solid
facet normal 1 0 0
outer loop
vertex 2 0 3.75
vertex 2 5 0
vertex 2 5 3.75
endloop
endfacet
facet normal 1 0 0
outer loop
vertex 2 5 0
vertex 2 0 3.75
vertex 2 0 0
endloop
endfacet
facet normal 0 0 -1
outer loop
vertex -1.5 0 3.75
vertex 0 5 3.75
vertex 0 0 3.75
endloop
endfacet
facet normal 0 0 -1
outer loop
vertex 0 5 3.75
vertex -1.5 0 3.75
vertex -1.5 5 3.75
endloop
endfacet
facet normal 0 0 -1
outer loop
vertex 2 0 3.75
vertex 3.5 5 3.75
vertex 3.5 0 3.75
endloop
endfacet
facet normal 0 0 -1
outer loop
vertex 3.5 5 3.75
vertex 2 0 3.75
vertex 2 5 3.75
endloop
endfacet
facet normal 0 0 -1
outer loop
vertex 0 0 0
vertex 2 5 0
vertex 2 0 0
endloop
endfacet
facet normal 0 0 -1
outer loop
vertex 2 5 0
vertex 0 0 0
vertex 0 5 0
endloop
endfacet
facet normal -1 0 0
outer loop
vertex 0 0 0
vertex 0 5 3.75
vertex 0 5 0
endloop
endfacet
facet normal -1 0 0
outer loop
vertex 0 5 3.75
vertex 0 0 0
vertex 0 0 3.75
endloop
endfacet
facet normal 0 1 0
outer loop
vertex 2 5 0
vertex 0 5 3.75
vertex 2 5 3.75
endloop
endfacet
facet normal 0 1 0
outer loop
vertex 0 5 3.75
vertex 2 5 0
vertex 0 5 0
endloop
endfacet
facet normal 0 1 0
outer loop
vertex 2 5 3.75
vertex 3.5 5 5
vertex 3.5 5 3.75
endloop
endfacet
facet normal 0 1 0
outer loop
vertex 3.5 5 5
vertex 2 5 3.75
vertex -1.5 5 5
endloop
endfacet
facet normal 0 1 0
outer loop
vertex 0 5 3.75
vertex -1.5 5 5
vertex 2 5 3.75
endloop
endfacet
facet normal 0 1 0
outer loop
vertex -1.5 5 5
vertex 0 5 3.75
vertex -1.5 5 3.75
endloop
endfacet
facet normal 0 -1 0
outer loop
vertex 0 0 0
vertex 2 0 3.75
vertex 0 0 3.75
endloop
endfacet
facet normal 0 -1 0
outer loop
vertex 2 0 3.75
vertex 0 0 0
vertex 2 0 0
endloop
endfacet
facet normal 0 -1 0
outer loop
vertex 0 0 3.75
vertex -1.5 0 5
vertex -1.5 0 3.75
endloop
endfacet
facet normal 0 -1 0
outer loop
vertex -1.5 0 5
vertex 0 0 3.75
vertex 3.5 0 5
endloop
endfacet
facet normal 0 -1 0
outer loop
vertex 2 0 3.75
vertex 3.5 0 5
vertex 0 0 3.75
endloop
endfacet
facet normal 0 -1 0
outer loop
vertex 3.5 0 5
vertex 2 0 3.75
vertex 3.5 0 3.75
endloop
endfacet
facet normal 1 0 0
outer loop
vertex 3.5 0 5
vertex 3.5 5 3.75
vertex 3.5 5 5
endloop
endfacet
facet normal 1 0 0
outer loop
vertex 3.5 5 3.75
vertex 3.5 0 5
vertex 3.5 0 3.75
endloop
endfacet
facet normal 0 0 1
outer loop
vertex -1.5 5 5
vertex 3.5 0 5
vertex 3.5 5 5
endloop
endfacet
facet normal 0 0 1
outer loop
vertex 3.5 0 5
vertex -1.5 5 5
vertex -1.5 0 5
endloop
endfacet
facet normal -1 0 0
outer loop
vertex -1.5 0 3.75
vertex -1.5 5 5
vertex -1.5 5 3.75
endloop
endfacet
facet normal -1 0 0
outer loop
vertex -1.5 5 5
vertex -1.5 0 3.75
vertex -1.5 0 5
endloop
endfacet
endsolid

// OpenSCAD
cube([2,5,3.75]);
translate([-1.5,0,3.75])
cube([5,5,1.25]);
